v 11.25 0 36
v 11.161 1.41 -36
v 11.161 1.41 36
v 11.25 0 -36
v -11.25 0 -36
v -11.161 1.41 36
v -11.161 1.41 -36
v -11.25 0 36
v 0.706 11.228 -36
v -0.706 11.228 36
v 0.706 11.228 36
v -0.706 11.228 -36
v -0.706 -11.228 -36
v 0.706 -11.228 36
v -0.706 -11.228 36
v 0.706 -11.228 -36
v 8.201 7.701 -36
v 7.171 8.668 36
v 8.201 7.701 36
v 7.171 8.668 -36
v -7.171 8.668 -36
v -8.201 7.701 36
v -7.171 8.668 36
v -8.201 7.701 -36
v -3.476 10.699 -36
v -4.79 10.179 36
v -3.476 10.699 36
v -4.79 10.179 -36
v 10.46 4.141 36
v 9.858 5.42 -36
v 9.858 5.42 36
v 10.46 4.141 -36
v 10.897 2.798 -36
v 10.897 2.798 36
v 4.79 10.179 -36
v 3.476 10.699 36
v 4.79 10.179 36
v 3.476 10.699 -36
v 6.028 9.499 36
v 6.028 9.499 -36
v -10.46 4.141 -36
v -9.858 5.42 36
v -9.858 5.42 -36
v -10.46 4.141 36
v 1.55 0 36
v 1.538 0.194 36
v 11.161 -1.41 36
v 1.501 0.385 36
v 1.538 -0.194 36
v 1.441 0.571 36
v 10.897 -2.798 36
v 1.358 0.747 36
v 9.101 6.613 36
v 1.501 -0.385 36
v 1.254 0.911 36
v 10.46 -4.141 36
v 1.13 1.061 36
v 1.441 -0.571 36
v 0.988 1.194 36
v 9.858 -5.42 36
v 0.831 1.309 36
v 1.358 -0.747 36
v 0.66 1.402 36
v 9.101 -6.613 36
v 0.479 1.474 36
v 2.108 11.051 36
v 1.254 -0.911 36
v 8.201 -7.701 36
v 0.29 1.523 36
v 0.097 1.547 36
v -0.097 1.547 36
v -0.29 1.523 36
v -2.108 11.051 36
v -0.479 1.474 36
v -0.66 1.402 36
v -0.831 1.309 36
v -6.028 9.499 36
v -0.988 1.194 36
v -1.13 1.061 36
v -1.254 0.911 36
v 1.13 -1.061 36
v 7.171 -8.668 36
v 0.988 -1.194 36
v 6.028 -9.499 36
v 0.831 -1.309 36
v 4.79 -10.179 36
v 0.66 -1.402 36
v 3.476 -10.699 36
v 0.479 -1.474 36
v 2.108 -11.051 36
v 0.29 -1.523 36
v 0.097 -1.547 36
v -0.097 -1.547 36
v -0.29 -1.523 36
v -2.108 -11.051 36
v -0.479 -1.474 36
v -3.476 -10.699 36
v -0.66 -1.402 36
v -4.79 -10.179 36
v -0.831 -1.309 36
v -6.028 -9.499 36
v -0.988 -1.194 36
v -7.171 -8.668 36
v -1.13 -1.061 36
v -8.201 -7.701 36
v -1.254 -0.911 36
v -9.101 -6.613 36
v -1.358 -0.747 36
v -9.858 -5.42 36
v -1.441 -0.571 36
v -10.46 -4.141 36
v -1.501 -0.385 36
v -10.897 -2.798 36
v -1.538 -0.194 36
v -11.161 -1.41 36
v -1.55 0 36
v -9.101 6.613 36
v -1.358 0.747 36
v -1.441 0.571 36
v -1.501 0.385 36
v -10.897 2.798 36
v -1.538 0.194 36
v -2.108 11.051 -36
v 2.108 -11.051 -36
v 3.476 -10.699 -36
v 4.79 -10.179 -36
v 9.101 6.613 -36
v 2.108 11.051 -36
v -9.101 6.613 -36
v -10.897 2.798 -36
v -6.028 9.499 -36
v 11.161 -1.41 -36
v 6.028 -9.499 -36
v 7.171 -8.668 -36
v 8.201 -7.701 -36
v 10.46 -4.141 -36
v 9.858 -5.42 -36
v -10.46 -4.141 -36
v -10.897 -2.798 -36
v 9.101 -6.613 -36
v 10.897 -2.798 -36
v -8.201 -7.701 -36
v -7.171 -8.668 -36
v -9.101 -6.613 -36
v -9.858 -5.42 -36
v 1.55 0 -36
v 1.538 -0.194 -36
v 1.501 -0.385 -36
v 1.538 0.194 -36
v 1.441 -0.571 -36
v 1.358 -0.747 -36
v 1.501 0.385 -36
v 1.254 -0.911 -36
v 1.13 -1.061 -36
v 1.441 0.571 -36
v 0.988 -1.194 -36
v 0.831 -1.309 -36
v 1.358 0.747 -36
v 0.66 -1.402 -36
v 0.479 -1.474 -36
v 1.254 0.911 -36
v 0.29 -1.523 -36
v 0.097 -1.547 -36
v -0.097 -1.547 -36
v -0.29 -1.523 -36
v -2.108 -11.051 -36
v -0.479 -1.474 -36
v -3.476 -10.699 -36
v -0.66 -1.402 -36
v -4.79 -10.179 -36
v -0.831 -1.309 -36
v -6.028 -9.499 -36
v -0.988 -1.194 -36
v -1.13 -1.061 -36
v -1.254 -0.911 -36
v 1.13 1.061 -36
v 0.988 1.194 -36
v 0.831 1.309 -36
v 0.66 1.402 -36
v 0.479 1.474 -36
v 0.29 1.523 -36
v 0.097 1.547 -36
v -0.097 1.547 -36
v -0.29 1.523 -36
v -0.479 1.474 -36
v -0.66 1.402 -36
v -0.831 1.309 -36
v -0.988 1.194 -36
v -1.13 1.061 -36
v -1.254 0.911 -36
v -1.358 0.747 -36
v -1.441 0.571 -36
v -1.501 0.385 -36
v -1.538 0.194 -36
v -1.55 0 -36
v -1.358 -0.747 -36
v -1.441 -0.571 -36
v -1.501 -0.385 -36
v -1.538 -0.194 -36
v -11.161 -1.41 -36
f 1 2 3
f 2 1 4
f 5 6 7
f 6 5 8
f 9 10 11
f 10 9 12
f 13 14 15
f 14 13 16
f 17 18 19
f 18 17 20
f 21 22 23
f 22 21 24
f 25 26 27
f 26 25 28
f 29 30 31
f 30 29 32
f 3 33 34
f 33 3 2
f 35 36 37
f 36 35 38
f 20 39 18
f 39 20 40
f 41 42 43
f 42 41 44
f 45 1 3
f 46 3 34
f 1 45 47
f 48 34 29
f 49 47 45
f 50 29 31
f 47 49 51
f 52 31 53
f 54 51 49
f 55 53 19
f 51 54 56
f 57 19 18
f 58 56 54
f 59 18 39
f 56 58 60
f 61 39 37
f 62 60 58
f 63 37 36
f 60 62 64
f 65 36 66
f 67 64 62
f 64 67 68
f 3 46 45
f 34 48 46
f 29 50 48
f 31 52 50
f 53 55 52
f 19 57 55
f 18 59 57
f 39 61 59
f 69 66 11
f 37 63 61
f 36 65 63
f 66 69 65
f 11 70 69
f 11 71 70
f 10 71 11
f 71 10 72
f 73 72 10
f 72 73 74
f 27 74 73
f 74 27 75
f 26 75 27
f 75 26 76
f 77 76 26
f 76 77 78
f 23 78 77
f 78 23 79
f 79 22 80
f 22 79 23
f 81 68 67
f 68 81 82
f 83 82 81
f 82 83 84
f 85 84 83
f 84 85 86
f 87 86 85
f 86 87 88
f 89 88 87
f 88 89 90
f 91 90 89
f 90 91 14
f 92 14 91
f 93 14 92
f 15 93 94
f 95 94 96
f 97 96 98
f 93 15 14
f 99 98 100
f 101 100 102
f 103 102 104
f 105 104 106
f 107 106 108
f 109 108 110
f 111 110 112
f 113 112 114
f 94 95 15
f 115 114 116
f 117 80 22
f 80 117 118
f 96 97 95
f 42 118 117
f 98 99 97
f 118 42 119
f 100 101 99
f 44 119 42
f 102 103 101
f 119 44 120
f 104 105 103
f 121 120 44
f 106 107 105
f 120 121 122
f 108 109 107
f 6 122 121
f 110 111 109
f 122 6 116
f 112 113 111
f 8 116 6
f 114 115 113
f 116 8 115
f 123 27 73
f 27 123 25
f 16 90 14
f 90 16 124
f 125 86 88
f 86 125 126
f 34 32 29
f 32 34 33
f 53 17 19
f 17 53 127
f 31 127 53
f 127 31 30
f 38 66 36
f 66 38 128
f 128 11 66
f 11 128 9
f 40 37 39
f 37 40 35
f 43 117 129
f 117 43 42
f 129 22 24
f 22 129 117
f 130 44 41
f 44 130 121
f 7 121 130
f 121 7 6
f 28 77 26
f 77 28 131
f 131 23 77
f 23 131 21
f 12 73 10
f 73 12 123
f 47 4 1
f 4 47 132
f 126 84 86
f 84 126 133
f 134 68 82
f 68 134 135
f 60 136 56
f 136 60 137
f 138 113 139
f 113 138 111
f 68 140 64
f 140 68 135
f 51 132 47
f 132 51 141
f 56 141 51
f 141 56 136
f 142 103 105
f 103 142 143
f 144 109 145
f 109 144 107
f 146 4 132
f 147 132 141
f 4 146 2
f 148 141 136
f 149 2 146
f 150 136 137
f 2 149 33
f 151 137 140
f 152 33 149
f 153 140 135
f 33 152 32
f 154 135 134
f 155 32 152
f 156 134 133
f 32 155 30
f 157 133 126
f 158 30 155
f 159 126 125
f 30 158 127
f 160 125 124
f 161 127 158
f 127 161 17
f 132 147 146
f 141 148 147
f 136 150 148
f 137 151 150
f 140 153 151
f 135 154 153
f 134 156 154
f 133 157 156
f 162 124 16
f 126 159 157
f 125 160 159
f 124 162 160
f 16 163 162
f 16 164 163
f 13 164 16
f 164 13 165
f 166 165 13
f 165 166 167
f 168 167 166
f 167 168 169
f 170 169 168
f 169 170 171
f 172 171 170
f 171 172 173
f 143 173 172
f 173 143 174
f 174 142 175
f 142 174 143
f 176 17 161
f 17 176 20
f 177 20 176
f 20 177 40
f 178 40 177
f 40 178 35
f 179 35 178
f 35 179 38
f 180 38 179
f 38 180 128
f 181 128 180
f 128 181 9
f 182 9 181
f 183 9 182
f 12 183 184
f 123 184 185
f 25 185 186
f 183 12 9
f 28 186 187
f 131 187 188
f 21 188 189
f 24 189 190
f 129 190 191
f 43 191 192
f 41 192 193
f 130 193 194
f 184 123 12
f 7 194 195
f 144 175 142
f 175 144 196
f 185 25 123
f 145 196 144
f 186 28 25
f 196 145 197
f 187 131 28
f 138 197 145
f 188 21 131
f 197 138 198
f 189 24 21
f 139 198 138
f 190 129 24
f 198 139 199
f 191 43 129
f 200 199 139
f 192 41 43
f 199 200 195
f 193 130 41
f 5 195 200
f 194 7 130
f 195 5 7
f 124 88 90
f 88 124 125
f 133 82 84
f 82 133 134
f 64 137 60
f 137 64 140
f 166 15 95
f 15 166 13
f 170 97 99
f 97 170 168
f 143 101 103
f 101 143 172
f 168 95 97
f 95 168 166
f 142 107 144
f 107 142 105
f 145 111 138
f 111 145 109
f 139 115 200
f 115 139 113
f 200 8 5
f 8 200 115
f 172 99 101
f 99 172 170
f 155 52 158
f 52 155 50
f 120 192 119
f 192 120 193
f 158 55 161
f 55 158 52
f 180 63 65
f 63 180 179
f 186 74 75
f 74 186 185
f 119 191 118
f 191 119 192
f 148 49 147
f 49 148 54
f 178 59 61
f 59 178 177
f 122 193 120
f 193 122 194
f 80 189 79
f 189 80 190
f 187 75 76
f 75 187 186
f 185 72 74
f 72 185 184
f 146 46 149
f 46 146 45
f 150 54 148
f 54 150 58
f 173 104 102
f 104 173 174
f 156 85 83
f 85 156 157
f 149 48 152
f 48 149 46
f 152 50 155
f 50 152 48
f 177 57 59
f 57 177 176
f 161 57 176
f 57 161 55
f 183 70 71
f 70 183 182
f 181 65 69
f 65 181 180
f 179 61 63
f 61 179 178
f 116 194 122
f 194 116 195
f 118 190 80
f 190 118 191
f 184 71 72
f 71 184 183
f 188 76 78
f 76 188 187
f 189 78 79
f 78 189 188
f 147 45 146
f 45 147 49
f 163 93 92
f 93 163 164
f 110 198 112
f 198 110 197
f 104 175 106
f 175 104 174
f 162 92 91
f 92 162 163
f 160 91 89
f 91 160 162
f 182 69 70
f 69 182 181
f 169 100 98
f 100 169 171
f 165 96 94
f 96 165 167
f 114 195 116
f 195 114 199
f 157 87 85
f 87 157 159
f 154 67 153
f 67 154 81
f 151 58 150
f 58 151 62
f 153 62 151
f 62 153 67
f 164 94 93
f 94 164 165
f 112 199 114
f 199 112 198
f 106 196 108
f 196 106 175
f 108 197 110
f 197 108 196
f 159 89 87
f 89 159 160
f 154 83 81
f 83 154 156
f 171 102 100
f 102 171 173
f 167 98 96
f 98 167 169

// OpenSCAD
$fn = 50;


difference() {
	union() {
		translate(v = [0, 0, -36.0000000000]) {
			cylinder(h = 72, r = 11.2500000000);
		}
	}
	union() {
		translate(v = [0, 0, -100.0000000000]) {
			cylinder(h = 200, r = 1.5500000000);
		}
	}
}
